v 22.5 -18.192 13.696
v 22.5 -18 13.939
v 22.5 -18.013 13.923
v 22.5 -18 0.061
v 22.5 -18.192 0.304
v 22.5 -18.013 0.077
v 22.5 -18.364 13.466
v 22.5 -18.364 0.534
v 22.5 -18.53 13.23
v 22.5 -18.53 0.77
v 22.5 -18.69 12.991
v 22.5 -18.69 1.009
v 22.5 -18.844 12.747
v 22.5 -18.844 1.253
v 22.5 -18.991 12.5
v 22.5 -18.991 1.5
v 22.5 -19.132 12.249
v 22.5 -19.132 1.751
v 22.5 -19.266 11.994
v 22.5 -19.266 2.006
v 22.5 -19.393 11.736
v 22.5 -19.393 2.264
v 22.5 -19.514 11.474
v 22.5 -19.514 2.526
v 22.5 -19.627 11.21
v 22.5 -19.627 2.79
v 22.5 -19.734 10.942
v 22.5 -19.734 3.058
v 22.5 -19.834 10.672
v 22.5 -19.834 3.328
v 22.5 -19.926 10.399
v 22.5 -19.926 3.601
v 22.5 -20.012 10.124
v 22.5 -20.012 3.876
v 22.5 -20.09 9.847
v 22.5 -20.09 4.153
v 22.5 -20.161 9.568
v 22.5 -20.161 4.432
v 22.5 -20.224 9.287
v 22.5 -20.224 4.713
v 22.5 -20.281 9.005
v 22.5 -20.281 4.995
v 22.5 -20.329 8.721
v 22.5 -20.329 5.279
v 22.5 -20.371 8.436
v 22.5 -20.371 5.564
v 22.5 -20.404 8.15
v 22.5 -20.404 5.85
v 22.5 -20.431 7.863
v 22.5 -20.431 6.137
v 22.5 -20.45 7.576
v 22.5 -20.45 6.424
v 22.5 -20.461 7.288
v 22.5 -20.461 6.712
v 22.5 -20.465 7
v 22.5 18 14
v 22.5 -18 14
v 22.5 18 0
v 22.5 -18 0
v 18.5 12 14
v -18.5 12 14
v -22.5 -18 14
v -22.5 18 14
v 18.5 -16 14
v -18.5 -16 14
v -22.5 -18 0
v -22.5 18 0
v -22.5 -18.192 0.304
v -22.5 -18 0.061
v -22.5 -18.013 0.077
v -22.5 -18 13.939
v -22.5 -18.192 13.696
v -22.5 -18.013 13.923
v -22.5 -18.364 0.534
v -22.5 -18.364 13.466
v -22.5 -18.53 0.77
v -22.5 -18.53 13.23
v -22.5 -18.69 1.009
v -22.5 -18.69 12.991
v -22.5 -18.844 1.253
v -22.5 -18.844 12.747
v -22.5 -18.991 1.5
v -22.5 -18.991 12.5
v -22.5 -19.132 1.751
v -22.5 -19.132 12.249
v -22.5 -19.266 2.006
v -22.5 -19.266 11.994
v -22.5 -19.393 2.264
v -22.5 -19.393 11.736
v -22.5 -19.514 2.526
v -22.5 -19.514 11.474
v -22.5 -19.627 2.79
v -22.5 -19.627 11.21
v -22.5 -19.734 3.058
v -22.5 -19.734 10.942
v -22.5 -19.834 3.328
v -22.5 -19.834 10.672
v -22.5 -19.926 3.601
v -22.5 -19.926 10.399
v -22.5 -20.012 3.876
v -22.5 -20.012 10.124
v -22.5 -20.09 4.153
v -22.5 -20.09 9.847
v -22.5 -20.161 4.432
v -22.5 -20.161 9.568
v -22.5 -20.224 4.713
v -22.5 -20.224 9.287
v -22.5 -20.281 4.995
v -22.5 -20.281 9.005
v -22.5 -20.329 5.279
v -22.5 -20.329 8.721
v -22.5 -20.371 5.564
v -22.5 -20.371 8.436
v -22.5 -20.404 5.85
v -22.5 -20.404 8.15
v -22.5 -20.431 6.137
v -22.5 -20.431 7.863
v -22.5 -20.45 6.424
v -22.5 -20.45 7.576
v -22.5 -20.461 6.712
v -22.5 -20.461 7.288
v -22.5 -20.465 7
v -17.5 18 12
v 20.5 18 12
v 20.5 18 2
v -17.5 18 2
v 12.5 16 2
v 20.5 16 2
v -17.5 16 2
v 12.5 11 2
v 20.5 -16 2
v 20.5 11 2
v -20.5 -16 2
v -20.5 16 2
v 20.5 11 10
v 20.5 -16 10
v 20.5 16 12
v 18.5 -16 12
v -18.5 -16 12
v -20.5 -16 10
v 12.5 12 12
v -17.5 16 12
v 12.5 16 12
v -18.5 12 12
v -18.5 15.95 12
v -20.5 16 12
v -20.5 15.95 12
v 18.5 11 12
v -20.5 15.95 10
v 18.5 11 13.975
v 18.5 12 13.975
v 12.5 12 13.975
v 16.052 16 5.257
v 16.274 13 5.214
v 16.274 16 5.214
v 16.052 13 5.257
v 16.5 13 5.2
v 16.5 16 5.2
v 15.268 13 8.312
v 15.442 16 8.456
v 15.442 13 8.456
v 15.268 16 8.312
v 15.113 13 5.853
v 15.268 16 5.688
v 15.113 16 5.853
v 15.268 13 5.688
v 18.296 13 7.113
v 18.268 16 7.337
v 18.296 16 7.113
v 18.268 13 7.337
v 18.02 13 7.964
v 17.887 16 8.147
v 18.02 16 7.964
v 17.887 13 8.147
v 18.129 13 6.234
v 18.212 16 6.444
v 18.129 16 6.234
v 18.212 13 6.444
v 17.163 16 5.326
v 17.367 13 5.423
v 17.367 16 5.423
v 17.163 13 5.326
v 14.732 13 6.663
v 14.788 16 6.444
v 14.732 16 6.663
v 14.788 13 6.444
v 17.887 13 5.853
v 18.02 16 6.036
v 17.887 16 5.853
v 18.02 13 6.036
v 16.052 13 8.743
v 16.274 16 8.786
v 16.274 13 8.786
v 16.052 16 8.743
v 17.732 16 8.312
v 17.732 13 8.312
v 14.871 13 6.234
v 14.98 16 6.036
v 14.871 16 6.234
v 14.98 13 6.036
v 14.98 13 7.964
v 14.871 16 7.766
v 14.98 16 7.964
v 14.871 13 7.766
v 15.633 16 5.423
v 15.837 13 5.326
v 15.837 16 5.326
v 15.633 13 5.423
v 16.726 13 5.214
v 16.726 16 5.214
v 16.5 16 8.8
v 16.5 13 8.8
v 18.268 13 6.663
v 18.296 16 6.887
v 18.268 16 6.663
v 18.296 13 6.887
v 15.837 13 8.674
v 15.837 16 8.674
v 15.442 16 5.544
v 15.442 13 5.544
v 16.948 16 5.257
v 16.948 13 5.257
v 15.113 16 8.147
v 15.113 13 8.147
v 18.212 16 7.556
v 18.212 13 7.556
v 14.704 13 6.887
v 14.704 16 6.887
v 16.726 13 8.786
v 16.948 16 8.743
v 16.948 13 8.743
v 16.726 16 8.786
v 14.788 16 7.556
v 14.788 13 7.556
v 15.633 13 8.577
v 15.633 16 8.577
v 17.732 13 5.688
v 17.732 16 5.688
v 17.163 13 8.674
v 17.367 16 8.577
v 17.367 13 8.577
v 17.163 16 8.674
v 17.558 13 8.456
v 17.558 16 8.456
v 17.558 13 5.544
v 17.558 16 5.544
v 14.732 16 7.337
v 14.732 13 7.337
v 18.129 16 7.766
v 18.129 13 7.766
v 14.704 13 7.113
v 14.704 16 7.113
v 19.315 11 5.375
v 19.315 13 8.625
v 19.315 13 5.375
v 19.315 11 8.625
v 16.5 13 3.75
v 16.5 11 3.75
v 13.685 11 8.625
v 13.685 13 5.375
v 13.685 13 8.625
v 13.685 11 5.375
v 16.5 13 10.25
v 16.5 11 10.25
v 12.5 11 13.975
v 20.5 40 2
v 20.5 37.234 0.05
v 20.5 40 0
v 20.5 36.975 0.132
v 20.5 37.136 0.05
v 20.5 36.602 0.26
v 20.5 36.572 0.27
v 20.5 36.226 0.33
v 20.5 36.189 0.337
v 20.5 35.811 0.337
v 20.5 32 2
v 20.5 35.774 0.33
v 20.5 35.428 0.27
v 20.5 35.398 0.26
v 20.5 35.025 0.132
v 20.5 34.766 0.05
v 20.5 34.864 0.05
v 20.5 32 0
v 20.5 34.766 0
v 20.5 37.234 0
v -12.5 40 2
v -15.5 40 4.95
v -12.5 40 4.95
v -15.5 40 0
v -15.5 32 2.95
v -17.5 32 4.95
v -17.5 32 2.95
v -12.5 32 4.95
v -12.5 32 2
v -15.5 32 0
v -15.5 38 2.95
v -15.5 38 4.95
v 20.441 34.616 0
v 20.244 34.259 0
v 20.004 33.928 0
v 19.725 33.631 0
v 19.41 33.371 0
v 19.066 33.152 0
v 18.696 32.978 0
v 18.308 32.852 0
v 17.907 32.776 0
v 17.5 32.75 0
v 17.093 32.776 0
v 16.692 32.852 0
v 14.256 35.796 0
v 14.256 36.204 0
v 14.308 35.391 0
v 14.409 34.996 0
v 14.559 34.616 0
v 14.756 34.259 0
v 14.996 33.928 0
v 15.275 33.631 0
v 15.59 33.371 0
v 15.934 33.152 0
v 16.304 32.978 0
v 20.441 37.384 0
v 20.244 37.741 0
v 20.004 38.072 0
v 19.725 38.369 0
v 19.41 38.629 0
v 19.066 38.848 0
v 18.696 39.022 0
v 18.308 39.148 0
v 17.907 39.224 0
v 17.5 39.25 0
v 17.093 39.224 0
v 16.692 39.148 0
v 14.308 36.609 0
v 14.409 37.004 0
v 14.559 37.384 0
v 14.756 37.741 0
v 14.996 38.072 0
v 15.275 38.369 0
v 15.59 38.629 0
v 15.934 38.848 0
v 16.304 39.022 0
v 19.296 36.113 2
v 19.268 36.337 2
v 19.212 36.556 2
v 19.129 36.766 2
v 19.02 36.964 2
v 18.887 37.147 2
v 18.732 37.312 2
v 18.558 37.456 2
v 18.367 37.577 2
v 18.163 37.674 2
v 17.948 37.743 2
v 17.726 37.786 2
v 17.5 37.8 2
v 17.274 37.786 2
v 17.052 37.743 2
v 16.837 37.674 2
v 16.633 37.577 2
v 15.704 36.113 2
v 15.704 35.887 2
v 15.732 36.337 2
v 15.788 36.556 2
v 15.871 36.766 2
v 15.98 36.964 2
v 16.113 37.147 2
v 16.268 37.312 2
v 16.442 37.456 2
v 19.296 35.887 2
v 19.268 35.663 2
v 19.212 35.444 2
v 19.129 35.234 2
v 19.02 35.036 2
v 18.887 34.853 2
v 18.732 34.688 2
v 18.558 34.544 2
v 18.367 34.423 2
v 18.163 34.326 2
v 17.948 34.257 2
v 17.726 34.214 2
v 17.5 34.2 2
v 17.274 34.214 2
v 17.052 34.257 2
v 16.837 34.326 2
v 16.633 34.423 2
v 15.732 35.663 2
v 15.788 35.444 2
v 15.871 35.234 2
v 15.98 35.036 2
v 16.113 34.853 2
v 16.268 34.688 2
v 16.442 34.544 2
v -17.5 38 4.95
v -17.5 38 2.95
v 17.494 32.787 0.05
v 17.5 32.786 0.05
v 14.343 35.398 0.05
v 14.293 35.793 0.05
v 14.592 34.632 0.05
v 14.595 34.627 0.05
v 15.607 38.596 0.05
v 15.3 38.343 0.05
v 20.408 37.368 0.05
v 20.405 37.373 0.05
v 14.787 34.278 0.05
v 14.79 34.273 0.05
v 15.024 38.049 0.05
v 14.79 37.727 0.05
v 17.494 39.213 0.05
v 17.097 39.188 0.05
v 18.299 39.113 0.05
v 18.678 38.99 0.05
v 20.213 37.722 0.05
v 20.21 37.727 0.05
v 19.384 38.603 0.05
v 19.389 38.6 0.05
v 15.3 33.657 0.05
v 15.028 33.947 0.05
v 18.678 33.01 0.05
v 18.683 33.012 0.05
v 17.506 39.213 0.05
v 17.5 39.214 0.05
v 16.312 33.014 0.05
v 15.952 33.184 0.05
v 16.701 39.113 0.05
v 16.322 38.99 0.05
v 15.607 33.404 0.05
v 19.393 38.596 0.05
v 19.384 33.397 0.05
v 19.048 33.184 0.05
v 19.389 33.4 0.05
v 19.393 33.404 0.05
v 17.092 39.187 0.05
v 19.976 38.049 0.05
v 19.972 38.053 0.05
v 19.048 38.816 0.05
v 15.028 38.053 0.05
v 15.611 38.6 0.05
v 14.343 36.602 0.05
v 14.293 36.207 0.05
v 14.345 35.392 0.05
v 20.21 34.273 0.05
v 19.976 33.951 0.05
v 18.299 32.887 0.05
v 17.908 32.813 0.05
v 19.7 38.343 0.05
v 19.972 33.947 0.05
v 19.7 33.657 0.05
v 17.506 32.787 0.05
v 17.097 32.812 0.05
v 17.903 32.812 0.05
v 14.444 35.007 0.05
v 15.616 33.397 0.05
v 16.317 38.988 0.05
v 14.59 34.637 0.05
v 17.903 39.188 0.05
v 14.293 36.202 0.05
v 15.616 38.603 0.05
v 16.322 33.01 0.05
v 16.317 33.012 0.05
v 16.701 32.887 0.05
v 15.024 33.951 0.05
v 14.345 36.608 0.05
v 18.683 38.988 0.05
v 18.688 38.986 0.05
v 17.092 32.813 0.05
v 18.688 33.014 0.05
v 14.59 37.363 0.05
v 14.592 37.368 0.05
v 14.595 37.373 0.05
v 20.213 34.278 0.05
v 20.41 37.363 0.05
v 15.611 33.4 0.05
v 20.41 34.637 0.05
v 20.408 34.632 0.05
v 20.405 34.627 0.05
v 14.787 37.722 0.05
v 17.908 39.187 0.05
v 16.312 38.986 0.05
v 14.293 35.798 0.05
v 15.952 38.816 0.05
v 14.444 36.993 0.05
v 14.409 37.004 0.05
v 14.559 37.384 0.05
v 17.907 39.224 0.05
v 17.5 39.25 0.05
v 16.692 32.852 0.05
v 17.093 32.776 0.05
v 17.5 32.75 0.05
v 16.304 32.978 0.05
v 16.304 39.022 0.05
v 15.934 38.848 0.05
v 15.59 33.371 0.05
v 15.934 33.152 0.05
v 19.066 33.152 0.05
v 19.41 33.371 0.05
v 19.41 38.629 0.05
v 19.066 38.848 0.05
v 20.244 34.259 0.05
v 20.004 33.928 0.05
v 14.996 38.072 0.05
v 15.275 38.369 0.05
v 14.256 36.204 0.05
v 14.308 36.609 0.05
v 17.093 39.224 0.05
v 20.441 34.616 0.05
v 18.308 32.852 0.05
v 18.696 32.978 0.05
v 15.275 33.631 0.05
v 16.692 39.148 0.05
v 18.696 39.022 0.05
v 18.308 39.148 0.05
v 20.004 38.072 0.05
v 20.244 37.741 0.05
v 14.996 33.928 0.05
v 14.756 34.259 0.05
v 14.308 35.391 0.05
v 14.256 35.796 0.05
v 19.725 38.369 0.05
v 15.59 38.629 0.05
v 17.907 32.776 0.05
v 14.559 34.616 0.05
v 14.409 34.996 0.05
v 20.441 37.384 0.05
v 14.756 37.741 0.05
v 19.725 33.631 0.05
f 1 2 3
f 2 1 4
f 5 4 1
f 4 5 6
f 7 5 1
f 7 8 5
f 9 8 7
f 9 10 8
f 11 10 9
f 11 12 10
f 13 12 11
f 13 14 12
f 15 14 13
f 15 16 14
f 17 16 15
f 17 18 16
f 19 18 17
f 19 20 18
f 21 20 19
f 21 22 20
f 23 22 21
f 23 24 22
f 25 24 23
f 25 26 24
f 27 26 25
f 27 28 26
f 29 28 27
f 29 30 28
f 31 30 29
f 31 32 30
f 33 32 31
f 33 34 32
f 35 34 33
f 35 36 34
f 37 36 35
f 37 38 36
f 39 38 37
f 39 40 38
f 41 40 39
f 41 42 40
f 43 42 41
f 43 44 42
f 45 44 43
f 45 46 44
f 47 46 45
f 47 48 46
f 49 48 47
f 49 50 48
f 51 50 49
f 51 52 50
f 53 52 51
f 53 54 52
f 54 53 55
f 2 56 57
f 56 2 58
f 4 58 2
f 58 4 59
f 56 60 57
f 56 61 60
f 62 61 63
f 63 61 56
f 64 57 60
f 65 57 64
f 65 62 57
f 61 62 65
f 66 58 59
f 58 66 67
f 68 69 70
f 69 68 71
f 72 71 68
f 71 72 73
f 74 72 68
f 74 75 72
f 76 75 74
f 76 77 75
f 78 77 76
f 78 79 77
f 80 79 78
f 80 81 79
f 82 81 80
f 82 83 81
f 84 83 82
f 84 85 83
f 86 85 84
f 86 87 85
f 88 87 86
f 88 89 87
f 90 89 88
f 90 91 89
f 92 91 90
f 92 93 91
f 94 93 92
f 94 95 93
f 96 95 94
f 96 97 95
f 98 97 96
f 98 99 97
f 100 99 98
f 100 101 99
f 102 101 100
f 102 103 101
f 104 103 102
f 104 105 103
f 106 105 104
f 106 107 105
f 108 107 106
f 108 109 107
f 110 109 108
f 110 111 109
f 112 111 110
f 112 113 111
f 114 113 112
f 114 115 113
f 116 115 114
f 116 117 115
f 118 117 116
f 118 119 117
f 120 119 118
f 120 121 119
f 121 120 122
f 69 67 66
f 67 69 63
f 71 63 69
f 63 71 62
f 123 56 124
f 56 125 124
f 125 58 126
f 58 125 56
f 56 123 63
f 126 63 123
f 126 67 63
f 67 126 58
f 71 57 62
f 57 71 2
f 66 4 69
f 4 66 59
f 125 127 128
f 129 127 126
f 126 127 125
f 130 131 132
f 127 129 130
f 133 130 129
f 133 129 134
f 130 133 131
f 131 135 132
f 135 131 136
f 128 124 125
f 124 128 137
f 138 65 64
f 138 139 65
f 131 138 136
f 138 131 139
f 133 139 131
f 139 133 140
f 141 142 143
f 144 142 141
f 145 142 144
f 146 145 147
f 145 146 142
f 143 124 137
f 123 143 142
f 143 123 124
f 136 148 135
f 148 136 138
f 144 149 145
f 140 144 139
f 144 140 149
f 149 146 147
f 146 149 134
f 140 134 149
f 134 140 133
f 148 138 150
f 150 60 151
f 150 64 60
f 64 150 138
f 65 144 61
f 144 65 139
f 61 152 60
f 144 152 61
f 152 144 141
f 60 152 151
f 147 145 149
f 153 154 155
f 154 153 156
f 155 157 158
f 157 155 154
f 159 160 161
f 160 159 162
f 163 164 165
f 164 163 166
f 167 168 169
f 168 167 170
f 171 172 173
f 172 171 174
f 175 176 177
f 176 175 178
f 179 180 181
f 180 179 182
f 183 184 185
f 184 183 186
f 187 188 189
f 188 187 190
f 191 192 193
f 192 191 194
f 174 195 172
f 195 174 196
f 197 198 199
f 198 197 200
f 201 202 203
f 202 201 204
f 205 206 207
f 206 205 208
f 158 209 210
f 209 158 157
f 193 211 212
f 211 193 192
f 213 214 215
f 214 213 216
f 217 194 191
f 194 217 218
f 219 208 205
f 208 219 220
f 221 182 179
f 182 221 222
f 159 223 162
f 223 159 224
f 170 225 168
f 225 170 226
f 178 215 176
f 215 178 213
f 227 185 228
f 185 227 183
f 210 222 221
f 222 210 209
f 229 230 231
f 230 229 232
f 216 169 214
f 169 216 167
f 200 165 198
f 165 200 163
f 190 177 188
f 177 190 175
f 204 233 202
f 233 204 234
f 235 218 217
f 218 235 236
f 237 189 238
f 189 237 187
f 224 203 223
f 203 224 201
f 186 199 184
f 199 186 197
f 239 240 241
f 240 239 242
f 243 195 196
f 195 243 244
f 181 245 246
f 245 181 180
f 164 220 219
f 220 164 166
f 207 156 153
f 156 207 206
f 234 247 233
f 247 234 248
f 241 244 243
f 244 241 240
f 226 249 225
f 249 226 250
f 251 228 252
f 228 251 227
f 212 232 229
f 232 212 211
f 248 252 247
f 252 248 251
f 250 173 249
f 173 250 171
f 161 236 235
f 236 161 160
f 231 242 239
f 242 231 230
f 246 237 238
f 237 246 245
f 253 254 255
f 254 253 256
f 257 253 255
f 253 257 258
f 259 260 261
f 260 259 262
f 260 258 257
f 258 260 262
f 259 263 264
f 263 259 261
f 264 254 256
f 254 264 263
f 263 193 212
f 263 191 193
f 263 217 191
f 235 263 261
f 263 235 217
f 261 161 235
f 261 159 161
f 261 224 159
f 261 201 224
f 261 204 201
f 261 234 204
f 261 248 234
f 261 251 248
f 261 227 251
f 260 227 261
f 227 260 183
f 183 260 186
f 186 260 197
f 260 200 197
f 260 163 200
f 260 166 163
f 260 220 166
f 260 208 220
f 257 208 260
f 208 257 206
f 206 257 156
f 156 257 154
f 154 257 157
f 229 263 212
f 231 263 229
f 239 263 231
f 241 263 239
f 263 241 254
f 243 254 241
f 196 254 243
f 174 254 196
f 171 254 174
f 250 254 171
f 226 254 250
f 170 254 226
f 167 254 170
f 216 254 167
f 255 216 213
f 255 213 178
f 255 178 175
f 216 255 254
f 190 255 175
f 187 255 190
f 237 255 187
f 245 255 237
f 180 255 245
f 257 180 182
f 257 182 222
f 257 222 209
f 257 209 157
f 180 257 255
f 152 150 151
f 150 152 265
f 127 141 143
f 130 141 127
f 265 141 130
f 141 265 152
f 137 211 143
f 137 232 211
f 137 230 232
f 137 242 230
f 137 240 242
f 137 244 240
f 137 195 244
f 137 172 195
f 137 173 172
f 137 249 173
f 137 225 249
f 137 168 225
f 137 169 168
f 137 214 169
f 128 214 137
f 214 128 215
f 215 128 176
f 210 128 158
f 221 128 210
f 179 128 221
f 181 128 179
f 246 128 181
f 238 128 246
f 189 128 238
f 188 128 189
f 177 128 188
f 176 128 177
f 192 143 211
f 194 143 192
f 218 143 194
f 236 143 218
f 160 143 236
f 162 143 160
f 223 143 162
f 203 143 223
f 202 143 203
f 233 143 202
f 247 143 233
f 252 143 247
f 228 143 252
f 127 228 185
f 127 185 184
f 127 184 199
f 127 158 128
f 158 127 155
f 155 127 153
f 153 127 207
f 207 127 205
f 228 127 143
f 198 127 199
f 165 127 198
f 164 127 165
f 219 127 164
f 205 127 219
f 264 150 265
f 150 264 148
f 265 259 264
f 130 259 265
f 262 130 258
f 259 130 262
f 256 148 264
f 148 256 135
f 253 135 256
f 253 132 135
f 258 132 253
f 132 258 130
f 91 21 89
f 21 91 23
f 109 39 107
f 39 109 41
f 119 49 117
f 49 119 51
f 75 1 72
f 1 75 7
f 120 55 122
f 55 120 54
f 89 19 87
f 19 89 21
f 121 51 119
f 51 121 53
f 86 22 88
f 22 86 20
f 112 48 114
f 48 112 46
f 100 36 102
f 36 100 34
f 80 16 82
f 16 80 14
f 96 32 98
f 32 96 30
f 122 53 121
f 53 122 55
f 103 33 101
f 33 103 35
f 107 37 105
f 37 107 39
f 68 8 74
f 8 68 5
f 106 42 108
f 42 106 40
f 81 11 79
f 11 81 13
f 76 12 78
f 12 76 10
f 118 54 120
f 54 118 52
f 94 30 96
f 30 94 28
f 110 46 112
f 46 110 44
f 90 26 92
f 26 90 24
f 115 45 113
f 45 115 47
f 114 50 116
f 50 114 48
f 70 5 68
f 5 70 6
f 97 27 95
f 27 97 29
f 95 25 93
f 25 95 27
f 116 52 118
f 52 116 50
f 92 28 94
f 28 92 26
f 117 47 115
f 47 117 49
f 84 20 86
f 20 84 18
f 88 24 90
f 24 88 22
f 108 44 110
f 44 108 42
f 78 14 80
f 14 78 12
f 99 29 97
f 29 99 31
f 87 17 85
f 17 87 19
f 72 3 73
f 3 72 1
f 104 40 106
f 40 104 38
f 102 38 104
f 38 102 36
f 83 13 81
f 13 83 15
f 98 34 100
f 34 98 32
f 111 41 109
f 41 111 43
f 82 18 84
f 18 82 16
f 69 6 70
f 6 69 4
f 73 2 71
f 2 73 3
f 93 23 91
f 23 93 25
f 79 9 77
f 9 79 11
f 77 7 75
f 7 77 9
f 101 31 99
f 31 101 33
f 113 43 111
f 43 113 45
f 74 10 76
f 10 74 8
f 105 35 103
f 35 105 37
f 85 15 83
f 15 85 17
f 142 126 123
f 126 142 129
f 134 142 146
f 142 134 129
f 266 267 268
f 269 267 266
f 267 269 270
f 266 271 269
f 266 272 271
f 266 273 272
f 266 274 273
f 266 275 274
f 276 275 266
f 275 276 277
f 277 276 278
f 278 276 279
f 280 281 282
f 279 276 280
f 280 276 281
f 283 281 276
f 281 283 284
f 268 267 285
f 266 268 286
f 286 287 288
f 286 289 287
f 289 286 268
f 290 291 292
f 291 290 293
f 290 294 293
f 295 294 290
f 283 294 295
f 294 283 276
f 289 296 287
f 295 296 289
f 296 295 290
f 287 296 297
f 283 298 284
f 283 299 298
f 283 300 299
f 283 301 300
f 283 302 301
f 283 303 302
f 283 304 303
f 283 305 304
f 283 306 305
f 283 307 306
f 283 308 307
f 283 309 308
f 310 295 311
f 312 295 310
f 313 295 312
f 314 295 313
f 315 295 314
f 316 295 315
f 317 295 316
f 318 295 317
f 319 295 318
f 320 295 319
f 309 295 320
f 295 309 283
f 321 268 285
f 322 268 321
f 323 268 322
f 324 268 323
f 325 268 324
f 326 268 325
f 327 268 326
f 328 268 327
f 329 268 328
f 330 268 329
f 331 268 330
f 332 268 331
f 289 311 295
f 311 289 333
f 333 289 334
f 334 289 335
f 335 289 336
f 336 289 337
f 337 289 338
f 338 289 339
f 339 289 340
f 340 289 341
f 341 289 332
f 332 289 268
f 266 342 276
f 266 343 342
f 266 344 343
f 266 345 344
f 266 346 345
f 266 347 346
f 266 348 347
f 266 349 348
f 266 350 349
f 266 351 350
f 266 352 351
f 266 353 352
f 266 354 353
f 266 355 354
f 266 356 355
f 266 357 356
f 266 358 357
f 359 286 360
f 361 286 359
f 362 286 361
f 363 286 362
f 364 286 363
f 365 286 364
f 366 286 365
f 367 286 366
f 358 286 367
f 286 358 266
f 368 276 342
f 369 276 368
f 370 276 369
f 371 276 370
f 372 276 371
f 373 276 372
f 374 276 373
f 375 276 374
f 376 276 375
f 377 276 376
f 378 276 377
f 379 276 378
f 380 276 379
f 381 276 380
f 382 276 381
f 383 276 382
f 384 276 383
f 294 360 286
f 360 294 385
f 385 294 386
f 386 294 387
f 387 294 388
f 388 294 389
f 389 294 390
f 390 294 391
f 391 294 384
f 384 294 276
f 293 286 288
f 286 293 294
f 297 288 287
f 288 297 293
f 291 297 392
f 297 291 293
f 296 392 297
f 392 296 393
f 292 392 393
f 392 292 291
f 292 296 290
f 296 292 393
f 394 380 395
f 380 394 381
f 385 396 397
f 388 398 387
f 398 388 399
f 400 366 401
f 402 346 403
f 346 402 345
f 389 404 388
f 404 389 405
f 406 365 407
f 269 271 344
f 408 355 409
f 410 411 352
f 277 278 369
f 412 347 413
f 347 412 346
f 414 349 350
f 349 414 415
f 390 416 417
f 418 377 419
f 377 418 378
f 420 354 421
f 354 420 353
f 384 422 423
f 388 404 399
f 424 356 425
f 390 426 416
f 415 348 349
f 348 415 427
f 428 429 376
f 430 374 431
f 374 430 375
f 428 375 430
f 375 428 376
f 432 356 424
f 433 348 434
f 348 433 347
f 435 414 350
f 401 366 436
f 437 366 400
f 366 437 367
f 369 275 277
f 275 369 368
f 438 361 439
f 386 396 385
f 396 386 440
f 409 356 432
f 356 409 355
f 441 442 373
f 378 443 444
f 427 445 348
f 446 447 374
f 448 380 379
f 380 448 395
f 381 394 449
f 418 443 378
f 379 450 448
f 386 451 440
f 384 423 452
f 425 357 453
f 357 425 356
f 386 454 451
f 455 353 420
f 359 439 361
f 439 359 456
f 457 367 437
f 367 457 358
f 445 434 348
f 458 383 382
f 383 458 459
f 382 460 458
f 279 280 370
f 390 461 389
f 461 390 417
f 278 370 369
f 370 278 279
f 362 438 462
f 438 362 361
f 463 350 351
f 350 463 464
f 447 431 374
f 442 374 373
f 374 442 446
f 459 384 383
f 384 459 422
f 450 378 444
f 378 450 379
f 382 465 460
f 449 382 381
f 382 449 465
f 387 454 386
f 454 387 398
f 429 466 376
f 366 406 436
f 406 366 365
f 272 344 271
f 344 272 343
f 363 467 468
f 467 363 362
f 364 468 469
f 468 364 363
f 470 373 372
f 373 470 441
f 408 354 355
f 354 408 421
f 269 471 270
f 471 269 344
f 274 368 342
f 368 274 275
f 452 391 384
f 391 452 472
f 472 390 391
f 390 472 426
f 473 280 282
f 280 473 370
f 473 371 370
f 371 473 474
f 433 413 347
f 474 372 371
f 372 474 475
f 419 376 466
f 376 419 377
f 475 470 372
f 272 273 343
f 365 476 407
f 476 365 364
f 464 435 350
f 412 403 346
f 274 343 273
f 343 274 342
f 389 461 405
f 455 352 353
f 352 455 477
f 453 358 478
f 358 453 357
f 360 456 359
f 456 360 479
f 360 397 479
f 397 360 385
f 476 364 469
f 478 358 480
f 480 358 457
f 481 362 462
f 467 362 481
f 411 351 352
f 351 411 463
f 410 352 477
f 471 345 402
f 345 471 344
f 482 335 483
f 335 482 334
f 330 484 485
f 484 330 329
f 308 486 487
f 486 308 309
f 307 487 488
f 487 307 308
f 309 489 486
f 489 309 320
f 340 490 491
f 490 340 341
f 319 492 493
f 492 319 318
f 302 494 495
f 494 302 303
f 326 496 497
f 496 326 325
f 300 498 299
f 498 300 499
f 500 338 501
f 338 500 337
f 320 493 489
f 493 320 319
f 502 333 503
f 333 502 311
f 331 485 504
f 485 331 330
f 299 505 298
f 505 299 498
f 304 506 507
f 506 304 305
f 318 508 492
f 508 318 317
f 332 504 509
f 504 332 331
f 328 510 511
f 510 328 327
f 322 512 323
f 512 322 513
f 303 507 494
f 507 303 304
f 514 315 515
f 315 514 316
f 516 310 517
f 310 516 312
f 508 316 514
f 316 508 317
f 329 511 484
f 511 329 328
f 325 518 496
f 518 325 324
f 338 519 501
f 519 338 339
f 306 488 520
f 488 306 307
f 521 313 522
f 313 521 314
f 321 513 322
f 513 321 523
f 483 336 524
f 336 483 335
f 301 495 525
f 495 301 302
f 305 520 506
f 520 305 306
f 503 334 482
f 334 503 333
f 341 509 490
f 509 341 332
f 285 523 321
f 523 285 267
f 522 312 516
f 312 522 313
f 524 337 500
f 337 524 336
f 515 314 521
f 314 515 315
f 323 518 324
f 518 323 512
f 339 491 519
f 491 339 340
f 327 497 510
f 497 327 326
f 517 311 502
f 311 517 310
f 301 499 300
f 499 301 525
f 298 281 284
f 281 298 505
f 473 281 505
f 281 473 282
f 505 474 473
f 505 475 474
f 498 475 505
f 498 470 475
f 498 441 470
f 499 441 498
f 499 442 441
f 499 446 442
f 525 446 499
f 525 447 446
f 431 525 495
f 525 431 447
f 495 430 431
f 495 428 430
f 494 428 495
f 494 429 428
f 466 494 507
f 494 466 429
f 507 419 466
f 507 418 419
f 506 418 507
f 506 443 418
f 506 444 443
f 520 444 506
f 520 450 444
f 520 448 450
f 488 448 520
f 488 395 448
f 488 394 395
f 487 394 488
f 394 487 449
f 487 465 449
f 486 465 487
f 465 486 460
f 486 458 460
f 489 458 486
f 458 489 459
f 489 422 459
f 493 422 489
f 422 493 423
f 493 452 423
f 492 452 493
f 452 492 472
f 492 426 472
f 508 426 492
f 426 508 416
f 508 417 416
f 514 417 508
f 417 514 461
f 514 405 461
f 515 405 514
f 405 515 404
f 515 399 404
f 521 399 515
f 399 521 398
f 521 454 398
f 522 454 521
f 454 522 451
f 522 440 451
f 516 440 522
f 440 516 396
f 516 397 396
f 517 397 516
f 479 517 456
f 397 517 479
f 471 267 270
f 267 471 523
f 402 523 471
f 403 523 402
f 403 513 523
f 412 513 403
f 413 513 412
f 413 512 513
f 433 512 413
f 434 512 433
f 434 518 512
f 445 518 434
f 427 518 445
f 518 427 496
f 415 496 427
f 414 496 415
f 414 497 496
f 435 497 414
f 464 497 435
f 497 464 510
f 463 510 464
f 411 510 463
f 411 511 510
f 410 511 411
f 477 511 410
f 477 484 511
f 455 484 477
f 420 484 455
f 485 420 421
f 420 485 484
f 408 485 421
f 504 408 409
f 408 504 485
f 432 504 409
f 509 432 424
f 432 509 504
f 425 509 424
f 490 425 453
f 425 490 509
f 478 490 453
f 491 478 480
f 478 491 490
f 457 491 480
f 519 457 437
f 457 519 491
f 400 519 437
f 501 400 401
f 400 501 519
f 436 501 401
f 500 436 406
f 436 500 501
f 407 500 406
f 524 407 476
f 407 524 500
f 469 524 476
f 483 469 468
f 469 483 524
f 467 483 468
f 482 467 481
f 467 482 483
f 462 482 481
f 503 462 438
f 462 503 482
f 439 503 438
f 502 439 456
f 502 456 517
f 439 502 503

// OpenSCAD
// Parameters

box_width = 45;
box_depth = 36; // 32 + 2 * 2
santa_bottom_depth = 32;
box_height = 14;
box_wall_thickness = 2;
box_front_radius = 11;
box_side_wall_thickness = 4;


box_fastener_support_thickness = 5;
box_fastener_support_width = 8;
// LID
lid_overlap= 3; // Minus the sidewall overlap. Sigh.
lid_tolerance = 1;


////////////////////////////////////////
// SCREW MODULE STUFF

// Screw stuff
// Screw diameter
screw_diameter = 3.6;
// Screw head diameter -- also used for hex nut cutout
screw_head_diameter = 6;
// Screw cutout length. This should really be calculated...
screw_cutout_length = 15;
nut_thickness = 2;
space = 0.0;
screw_head_thickness = 2;
inner_hole_adjustment = 0.25;


screw_radius = screw_diameter / 2.0;
screw_head_radius = screw_head_diameter / 2.0;



pad = 0.05;
$fn=50;

// Create a screw cutout of a given length
// Center is center of cutout. Translate for only nut or head.
module screw_hole(hole_length) {
    rotate([0, 90, 0]) {
        // Room for screw
        cylinder(r = screw_radius + space, h = hole_length * 2, center = true);
        // Screw head cutout
        translate([0, 0, hole_length / 2.0 + screw_head_thickness / 2.0]) {
            cylinder(r1 = screw_radius + space, r2 = screw_head_radius + inner_hole_adjustment, h = screw_head_thickness
            , center = true);
        }
        // Extension of head cutout
        translate([0, 0, hole_length / 2.0 + 25 + screw_head_thickness - pad]) {
            cylinder(r = screw_head_radius + inner_hole_adjustment, h = 50, center = true
            );
        }
        // Hex nut cutout
        translate([0, 0, - (hole_length / 2.0 + 25)]) {
            cylinder(r = screw_head_radius + inner_hole_adjustment, h = 50, center = true
            , $fn = 6);
        }
    }
}


module front() {
    // Add a front
    rotate([0,90,0])
    translate([0, box_front_radius - front_cutoff_thickness -box_depth/2.0+pad,0])
    difference() {
        cylinder(r = box_front_radius, h = box_width, center = true, $fn=240);
        cube([100, 2*front_cutoff, box_width + pad], center=true);
        translate([0,front_cutoff,0])
        cube([100, 2*front_cutoff, box_width + pad], center=true);

    }
}

module inner_extrude() {
    rotate([90,0,0])
    linear_extrude(height = box_depth-2*box_wall_thickness, center=true)
    polygon(points=[[-pad,box_height/2.0-box_wall_thickness],
            [box_width/2.0-box_side_wall_thickness, box_height/2.0-box_wall_thickness],
            [box_width/2.0-box_side_wall_thickness, box_height/2.0-box_wall_thickness],
            [box_width/2.0-box_wall_thickness, box_height/2.0-box_side_wall_thickness],
            [box_width/2.0-box_wall_thickness, -box_height/2.0+box_wall_thickness],
            [-pad,-box_height/2.0+box_wall_thickness]]);

}


// Front cylinder cutoff calculations
front_cutoff = sqrt(box_front_radius^2 - (box_height/2.0)^2);
front_cutoff_thickness = box_front_radius - front_cutoff;
echo(front_cutoff);
module box() {
    difference() {
        cube([box_width, box_depth, box_height], center = true);
        

        // Inner cutout
        inner_extrude();
        mirror([1,0,0])
        inner_extrude();

        // Top hole
        translate([0,-0.5*(box_depth-santa_bottom_depth),box_height/2.0-box_wall_thickness/2.0])
        cube([box_width - 2*box_side_wall_thickness, santa_bottom_depth - 2*box_wall_thickness,
                box_wall_thickness + 2*pad], center=true);

        // Backplate hole
        translate([0,box_depth/2.0-box_wall_thickness/2.0,0])
        cube([box_width - 2* box_wall_thickness, box_wall_thickness + 2*pad,
                box_height - 2*box_wall_thickness], center=true);


        
        
    }

    // Support for screw in one side
    translate([box_width/2.0-box_wall_thickness-box_fastener_support_width/2.0,
            box_depth/2.0-box_wall_thickness-box_fastener_support_thickness/2.0,
            0])

    difference() {

    cube([box_fastener_support_width,
            box_fastener_support_thickness,
            box_height-pad,],center=true);
    translate([0,nut_thickness,0])
    rotate([0,0,90])
    screw_hole(box_fastener_support_thickness);
}

    
    // Support for lid in other side
    translate([-box_width/2.0+box_wall_thickness+lid_overlap/2.0,
            box_depth/2.0-box_wall_thickness/2.0,
            0])
    cube([lid_overlap,box_wall_thickness,box_height-pad,],center=true);
    
    front();
    
}


module lid() {

    lid_width_e = box_width-2*box_wall_thickness-2*lid_tolerance-lid_overlap;

    difference() {
        union() {
            cube([lid_width_e,
                    box_wall_thickness,
                    box_height-2*box_wall_thickness-2*lid_tolerance], center = true);

            // Tounge
            translate([-lid_width_e/2.0+0.5*lid_overlap,-box_wall_thickness-lid_tolerance/2.0+pad,0])
            cube([lid_overlap,
                    box_wall_thickness + lid_tolerance,
                    box_height-2*box_wall_thickness-2*lid_tolerance], center = true);
            translate([-lid_width_e/2.0+lid_tolerance/2.0,
                    -box_wall_thickness-lid_tolerance+pad,
                    -box_side_wall_thickness/2.0+box_wall_thickness/2.0])
            cube([lid_overlap*2-lid_tolerance,
                box_wall_thickness,
                box_height-box_wall_thickness-box_side_wall_thickness-2*lid_tolerance], center = true);
    }

    // Screw hole
    translate([box_width/2.0-box_wall_thickness-box_fastener_support_width/2.0-lid_overlap/2.0,
     -screw_head_thickness,0])
    rotate([0,0,90])
    screw_hole(box_wall_thickness);
    
    
}
}

// THE BOX
translate([0,0,box_height/2.0]) box();


// THE LID
translate([lid_overlap/2.0+lid_tolerance,box_depth,box_wall_thickness/2.0])
rotate([270,0,0])
// translate([lid_overlap/2.0,box_depth/2.0-0.5*box_wall_thickness,box_height/2.0])
lid();
